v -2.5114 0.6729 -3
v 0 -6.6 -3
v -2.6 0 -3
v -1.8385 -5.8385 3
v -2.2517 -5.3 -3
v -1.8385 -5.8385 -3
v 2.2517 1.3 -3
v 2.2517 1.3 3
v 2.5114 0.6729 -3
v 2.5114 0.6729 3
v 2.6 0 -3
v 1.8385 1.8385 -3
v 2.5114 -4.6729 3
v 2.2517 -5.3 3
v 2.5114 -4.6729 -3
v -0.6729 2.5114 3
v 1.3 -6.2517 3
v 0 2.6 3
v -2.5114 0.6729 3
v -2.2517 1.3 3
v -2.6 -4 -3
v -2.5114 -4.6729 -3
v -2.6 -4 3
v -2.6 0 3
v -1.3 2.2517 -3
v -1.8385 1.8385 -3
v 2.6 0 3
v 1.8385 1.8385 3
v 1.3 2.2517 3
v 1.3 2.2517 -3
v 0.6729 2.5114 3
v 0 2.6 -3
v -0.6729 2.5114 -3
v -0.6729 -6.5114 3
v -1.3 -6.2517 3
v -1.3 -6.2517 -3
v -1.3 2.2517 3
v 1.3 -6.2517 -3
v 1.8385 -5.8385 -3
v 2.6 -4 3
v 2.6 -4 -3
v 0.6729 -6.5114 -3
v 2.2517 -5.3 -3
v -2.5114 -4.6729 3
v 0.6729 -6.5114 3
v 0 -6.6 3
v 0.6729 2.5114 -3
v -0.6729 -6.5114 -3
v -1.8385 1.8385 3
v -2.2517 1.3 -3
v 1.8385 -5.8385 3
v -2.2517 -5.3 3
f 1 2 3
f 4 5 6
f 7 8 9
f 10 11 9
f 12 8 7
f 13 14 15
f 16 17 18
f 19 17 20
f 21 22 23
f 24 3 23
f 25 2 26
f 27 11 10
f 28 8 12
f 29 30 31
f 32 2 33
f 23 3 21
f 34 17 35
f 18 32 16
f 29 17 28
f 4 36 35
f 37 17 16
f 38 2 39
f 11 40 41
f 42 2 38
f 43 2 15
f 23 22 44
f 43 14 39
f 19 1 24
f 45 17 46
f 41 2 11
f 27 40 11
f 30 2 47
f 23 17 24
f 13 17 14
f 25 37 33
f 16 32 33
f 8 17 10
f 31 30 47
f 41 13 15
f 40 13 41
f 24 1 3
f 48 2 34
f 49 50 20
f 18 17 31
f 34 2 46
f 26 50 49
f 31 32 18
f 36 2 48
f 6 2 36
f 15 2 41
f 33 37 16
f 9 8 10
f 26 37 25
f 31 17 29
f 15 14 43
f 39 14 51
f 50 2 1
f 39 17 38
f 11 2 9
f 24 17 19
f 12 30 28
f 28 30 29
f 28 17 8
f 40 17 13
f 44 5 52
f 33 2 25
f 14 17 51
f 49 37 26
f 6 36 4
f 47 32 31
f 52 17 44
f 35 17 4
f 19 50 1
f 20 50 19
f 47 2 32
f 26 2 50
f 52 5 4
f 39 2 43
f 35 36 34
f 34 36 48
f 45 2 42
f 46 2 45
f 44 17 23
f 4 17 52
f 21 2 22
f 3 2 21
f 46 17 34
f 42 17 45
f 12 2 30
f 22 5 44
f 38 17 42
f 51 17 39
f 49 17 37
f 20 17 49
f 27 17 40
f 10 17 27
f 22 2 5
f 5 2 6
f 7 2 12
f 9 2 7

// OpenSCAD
$side_button_radius = 5.4 / 2;
$button_depth = 6;


hull(){
cylinder(h=$button_depth, r=$side_button_radius - 0.1, center = true, $fn=24);
  translate([0,-4,0])
    cylinder(h=$button_depth, r=$side_button_radius - 0.1, center = true, $fn=24);
}
